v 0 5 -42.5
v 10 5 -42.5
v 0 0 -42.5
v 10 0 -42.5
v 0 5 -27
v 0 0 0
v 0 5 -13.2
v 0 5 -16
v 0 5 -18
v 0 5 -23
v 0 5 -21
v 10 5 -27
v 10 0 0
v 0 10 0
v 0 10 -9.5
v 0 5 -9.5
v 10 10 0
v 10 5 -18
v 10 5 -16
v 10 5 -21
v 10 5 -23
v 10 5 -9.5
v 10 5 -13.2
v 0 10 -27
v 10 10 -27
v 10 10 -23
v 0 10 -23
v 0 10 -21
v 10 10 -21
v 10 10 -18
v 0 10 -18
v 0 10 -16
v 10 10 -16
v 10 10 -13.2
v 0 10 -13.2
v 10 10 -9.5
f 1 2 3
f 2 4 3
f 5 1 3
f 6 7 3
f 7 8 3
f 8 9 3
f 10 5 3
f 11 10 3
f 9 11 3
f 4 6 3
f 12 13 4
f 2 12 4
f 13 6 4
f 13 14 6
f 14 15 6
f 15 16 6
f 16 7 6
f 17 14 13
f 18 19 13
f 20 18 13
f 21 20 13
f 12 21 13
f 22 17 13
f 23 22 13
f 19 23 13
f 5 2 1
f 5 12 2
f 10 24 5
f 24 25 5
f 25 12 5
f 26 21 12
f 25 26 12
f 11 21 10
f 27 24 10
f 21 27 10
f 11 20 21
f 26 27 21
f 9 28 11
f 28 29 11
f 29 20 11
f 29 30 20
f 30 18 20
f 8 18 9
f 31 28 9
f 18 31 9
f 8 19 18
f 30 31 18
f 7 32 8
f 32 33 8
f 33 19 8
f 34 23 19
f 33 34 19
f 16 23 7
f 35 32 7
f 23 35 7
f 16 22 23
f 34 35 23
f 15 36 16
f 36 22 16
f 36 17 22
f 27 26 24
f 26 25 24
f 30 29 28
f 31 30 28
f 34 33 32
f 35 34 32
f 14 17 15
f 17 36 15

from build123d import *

# Parameters (mm, degrees)
SKETCH1_W           = 10
SKETCH1_H           = 42.5
BOSS_EXTRUDE1_DEPTH = 5
SKETCH2_W           = 10
SKETCH2_H           = 4
BOSS_EXTRUDE2_DEPTH = 5


with BuildPart() as part:
    # Sketch1 → Boss-Extrude1 (new body)
    with BuildSketch(Plane(origin=(0, 0, 0), x_dir=(1, 0, 0), z_dir=(0, 1, 0))):
        with Locations((5, 21.25)):
            Rectangle(SKETCH1_W, SKETCH1_H)
    extrude(amount=BOSS_EXTRUDE1_DEPTH)

    # Sketch2 → Boss-Extrude2 (add)
    with BuildSketch(Plane(origin=(0, 5, 0), x_dir=(1, 0, 0), z_dir=(0, 1, 0))):
        with BuildLine():
            Line((0, 9.5), (0, 0))
            Line((0, 0), (10, 0))
            Line((10, 0), (10, 9.5))
            Line((10, 9.5), (6.38985528, 9.5))
            add(Edge.make_bspline(
                [(6.38985528, 9.5), (6.385913474, 9.499063167), (6.369337183, 9.495284951), (6.339528779, 9.489593982), (6.299971793, 9.48472811), (6.259281687, 9.481095847), (6.231779336, 9.480879047), (6.217848558, 9.480769231)],
                knots=[11.350502485, 11.350502485, 11.350502485, 11.350502485, 11.676244097, 12.717260333, 13.78922464, 14.880174919, 16, 16, 16, 16], degree=3))
            add(Edge.make_bspline(
                [(6.217848558, 9.480769231), (6.19658675, 9.481151208), (6.154913454, 9.481899886), (6.098774023, 9.489476712), (6.064160656, 9.496513578), (6.049680169, 9.5)],
                knots=[0, 0, 0, 0, 1.1129367, 2.181364009, 2.961379824, 2.961379824, 2.961379824, 2.961379824], degree=3))
            Line((6.049680169, 9.5), (5.326923077, 9.5))
            Line((5.326923077, 9.5), (5.192307692, 9.5))
            Line((5.192307692, 9.5), (4.903846154, 9.5))
            Line((4.903846154, 9.5), (4.769230769, 9.5))
            Line((4.769230769, 9.5), (4.12352071, 9.5))
            Line((4.12352071, 9.5), (3.942307692, 9.096153846))
            Line((3.942307692, 9.096153846), (3.796875, 9.096153846))
            Line((3.796875, 9.096153846), (3.978178742, 9.5))
            Line((3.978178742, 9.5), (3.173076923, 9.5))
            Line((3.173076923, 9.5), (3.038461538, 9.5))
            Line((3.038461538, 9.5), (2.466778357, 9.5))
            add(Edge.make_bspline(
                [(2.466778357, 9.5), (2.462836551, 9.499063167), (2.44626026, 9.495284951), (2.416451856, 9.489593982), (2.37689487, 9.48472811), (2.336204764, 9.481095847), (2.308702413, 9.480879047), (2.294771635, 9.480769231)],
                knots=[11.350502485, 11.350502485, 11.350502485, 11.350502485, 11.676244097, 12.717260333, 13.78922464, 14.880174919, 16, 16, 16, 16], degree=3))
            add(Edge.make_bspline(
                [(2.294771635, 9.480769231), (2.273509827, 9.481151208), (2.231836531, 9.481899886), (2.1756971, 9.489476712), (2.141083733, 9.496513578), (2.126603246, 9.5)],
                knots=[0, 0, 0, 0, 1.1129367, 2.181364009, 2.961379824, 2.961379824, 2.961379824, 2.961379824], degree=3))
            Line((2.126603246, 9.5), (1.5, 9.5))
            Line((1.5, 9.5), (1.353665865, 9.5))
            Line((1.353665865, 9.5), (0.223858173, 9.5))
            Line((0.223858173, 9.5), (0.076923077, 9.5))
            Line((0.076923077, 9.5), (0, 9.5))
        make_face()
        with BuildLine():
            add(Edge.make_bspline(
                [(6.38985528, 9.5), (6.385913474, 9.499063167), (6.369337183, 9.495284951), (6.339528779, 9.489593982), (6.299971793, 9.48472811), (6.259281687, 9.481095847), (6.231779336, 9.480879047), (6.217848558, 9.480769231)],
                knots=[11.350502485, 11.350502485, 11.350502485, 11.350502485, 11.676244097, 12.717260333, 13.78922464, 14.880174919, 16, 16, 16, 16], degree=3))
            Line((6.38985528, 9.5), (6.049680169, 9.5))
            add(Edge.make_bspline(
                [(6.217848558, 9.480769231), (6.19658675, 9.481151208), (6.154913454, 9.481899886), (6.098774023, 9.489476712), (6.064160656, 9.496513578), (6.049680169, 9.5)],
                knots=[0, 0, 0, 0, 1.1129367, 2.181364009, 2.961379824, 2.961379824, 2.961379824, 2.961379824], degree=3))
        make_face()
        with BuildLine():
            Line((2.466778357, 9.5), (2.126603246, 9.5))
            add(Edge.make_bspline(
                [(2.294771635, 9.480769231), (2.273509827, 9.481151208), (2.231836531, 9.481899886), (2.1756971, 9.489476712), (2.141083733, 9.496513578), (2.126603246, 9.5)],
                knots=[0, 0, 0, 0, 1.1129367, 2.181364009, 2.961379824, 2.961379824, 2.961379824, 2.961379824], degree=3))
            add(Edge.make_bspline(
                [(2.466778357, 9.5), (2.462836551, 9.499063167), (2.44626026, 9.495284951), (2.416451856, 9.489593982), (2.37689487, 9.48472811), (2.336204764, 9.481095847), (2.308702413, 9.480879047), (2.294771635, 9.480769231)],
                knots=[11.350502485, 11.350502485, 11.350502485, 11.350502485, 11.676244097, 12.717260333, 13.78922464, 14.880174919, 16, 16, 16, 16], degree=3))
        make_face()
        Polygon((3.942307692, 9.096153846), (4.12352071, 9.5), (3.978178742, 9.5), (3.796875, 9.096153846), align=None)
        with BuildLine():
            Line((0, 21), (0, 18))
            Line((0, 18), (10, 18))
            Line((10, 18), (10, 21))
            Line((10, 21), (4.598525657, 21))
            add(Edge.make_bspline(
                [(4.598525657, 21), (4.598135805, 20.999899395), (4.580997325, 20.995497464), (4.545939577, 20.988338664), (4.491951793, 20.98190012), (4.454946287, 20.981152202), (4.435997596, 20.980769231)],
                knots=[8.84081453, 8.84081453, 8.84081453, 8.84081453, 8.864066838, 9.862729781, 10.905609505, 12, 12, 12, 12], degree=3))
            add(Edge.make_bspline(
                [(4.435997596, 20.980769231), (4.414936749, 20.981260877), (4.373853136, 20.982219937), (4.320342805, 20.98961816), (4.288253752, 20.996770904), (4.275833044, 21)],
                knots=[0, 0, 0, 0, 1.145258523, 2.234067595, 2.931969346, 2.931969346, 2.931969346, 2.931969346], degree=3))
            Line((4.275833044, 21), (3.5, 21))
            Line((3.5, 21), (3.365384615, 21))
            Line((3.365384615, 21), (2.923076923, 21))
            Line((2.923076923, 21), (2.788461538, 21))
            Line((2.788461538, 21), (2.497147401, 21))
            add(Edge.make_bspline(
                [(2.497147401, 21), (2.48773707, 20.997577032), (2.45762121, 20.990585666), (2.405483538, 20.982277726), (2.362518243, 20.981276574), (2.340745192, 20.980769231)],
                knots=[5.529312578, 5.529312578, 5.529312578, 5.529312578, 5.985159533, 6.978961417, 8, 8, 8, 8], degree=3))
            add(Edge.make_bspline(
                [(2.340745192, 20.980769231), (2.321387498, 20.981294819), (2.283213267, 20.982331302), (2.232273472, 20.989625468), (2.20103719, 20.996660619), (2.188281559, 21)],
                knots=[0, 0, 0, 0, 1.033919861, 2.038935746, 2.743200613, 2.743200613, 2.743200613, 2.743200613], degree=3))
            Line((2.188281559, 21), (1.5, 21))
            Line((1.5, 21), (1.365384615, 21))
            Line((1.365384615, 21), (0.326923077, 21))
            Line((0.326923077, 21), (0.192307692, 21))
            Line((0.192307692, 21), (0, 21))
        make_face()
        with BuildLine():
            Line((0, 16), (0, 13.2))
            Line((0, 13.2), (10, 13.2))
            Line((10, 13.2), (10, 16))
            Line((10, 16), (3.521033654, 16))
            Line((3.521033654, 16), (3.115384615, 16))
            Line((3.115384615, 16), (2.418932719, 16))
            add(Edge.make_bspline(
                [(2.418932719, 16), (2.411928934, 15.997803198), (2.38964973, 15.991136542), (2.351568812, 15.981497268), (2.304119202, 15.972381089), (2.255531856, 15.966286943), (2.205701909, 15.962111836), (2.172084157, 15.961731301), (2.155048077, 15.961538462)],
                knots=[10.30831536, 10.30831536, 10.30831536, 10.30831536, 10.776456485, 11.791383307, 12.812564526, 13.85620153, 14.913611965, 16, 16, 16, 16], degree=3))
            add(Edge.make_bspline(
                [(2.155048077, 15.961538462), (2.138915077, 15.961650744), (2.107014067, 15.961872769), (2.059914602, 15.965469412), (2.014061924, 15.970376442), (1.969587085, 15.97776507), (1.926247381, 15.986484073), (1.896478302, 15.994805468), (1.881010855, 15.999495178), (1.879360723, 16)],
                knots=[0, 0, 0, 0, 1.114604814, 2.203992996, 3.262667896, 4.300477797, 5.318619304, 6.316056647, 6.435280565, 6.435280565, 6.435280565, 6.435280565], degree=3))
            Line((1.879360723, 16), (0.326923077, 16))
            Line((0.326923077, 16), (0.192307692, 16))
            Line((0.192307692, 16), (0, 16))
        make_face()
        with BuildLine():
            Line((2.418932719, 16), (1.879360723, 16))
            add(Edge.make_bspline(
                [(2.155048077, 15.961538462), (2.138915077, 15.961650744), (2.107014067, 15.961872769), (2.059914602, 15.965469412), (2.014061924, 15.970376442), (1.969587085, 15.97776507), (1.926247381, 15.986484073), (1.896478302, 15.994805468), (1.881010855, 15.999495178), (1.879360723, 16)],
                knots=[0, 0, 0, 0, 1.114604814, 2.203992996, 3.262667896, 4.300477797, 5.318619304, 6.316056647, 6.435280565, 6.435280565, 6.435280565, 6.435280565], degree=3))
            add(Edge.make_bspline(
                [(2.418932719, 16), (2.411928934, 15.997803198), (2.38964973, 15.991136542), (2.351568812, 15.981497268), (2.304119202, 15.972381089), (2.255531856, 15.966286943), (2.205701909, 15.962111836), (2.172084157, 15.961731301), (2.155048077, 15.961538462)],
                knots=[10.30831536, 10.30831536, 10.30831536, 10.30831536, 10.776456485, 11.791383307, 12.812564526, 13.85620153, 14.913611965, 16, 16, 16, 16], degree=3))
        make_face()
        with BuildLine():
            add(Edge.make_bspline(
                [(4.598525657, 21), (4.598135805, 20.999899395), (4.580997325, 20.995497464), (4.545939577, 20.988338664), (4.491951793, 20.98190012), (4.454946287, 20.981152202), (4.435997596, 20.980769231)],
                knots=[8.84081453, 8.84081453, 8.84081453, 8.84081453, 8.864066838, 9.862729781, 10.905609505, 12, 12, 12, 12], degree=3))
            Line((4.598525657, 21), (4.275833044, 21))
            add(Edge.make_bspline(
                [(4.435997596, 20.980769231), (4.414936749, 20.981260877), (4.373853136, 20.982219937), (4.320342805, 20.98961816), (4.288253752, 20.996770904), (4.275833044, 21)],
                knots=[0, 0, 0, 0, 1.145258523, 2.234067595, 2.931969346, 2.931969346, 2.931969346, 2.931969346], degree=3))
        make_face()
        with BuildLine():
            Line((2.497147401, 21), (2.188281559, 21))
            add(Edge.make_bspline(
                [(2.340745192, 20.980769231), (2.321387498, 20.981294819), (2.283213267, 20.982331302), (2.232273472, 20.989625468), (2.20103719, 20.996660619), (2.188281559, 21)],
                knots=[0, 0, 0, 0, 1.033919861, 2.038935746, 2.743200613, 2.743200613, 2.743200613, 2.743200613], degree=3))
            add(Edge.make_bspline(
                [(2.497147401, 21), (2.48773707, 20.997577032), (2.45762121, 20.990585666), (2.405483538, 20.982277726), (2.362518243, 20.981276574), (2.340745192, 20.980769231)],
                knots=[5.529312578, 5.529312578, 5.529312578, 5.529312578, 5.985159533, 6.978961417, 8, 8, 8, 8], degree=3))
        make_face()
        with Locations((5, 25)):
            Rectangle(SKETCH2_W, SKETCH2_H)
    extrude(amount=BOSS_EXTRUDE2_DEPTH)


solid = part.part
